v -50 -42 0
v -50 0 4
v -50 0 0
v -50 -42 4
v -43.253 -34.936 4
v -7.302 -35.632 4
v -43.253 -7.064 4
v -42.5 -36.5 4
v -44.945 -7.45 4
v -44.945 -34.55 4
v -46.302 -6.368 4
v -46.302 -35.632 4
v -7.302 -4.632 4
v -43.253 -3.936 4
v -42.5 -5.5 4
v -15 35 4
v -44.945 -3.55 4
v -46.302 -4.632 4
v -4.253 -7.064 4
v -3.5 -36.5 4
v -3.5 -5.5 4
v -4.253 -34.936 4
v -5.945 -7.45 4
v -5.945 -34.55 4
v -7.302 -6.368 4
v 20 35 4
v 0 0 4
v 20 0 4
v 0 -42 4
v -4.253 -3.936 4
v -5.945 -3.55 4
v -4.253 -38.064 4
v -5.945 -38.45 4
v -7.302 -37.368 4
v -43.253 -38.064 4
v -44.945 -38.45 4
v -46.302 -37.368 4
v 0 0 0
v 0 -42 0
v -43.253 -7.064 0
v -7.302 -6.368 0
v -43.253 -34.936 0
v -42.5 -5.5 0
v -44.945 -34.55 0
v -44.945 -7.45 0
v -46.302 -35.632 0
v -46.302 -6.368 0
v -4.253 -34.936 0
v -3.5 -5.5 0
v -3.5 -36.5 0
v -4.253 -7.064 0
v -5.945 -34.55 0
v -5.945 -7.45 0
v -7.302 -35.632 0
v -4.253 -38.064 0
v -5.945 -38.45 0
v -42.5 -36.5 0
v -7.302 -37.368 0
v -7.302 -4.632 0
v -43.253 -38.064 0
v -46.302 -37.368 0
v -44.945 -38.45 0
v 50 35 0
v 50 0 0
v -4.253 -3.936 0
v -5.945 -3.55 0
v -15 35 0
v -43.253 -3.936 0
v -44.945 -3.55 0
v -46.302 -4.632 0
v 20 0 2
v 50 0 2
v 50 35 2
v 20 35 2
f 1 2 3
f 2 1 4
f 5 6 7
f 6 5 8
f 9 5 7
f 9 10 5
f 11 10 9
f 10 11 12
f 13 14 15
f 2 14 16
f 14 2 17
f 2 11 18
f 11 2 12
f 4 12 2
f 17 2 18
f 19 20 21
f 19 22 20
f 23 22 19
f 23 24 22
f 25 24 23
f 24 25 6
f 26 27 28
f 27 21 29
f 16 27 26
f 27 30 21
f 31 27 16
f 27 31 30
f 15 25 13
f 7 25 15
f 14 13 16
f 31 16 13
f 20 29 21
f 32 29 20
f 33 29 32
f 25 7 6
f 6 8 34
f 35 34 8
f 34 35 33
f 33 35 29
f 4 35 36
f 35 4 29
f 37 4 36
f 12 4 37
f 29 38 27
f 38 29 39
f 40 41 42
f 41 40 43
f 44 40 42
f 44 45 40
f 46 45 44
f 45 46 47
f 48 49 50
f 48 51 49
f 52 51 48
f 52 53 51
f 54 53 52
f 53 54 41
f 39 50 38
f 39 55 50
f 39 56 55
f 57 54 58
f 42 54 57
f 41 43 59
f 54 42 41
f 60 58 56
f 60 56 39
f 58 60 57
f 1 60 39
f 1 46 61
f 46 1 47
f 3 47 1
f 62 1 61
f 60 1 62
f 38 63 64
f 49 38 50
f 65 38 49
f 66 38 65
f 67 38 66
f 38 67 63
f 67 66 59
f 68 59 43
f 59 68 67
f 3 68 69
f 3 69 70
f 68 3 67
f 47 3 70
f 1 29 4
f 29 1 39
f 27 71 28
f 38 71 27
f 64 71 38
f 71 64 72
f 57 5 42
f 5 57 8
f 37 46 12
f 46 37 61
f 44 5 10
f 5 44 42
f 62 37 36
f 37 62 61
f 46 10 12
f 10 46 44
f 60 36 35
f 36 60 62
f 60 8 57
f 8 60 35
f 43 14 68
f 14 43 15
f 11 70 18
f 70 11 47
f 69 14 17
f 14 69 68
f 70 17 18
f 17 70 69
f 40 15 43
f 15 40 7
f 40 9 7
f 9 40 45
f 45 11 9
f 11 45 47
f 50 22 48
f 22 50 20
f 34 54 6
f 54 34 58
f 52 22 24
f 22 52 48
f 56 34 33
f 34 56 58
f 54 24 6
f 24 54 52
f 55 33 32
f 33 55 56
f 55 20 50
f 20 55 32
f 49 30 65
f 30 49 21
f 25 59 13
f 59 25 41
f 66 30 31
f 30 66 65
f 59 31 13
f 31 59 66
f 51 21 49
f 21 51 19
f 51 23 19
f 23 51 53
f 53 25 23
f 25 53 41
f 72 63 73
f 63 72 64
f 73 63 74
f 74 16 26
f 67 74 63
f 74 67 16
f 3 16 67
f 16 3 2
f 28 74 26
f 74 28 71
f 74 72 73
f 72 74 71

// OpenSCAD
thick = 4;
brodit_foot_width = 50;
brodit_foot_height = 42;
corner = 5.5;
hole_diam = 4;
bar_height = 35;
bar_width = 100;
overlap = 30;

translate(
        [-brodit_foot_width,-brodit_foot_height,0])
difference()
{
        cube(
            size=[brodit_foot_width, 
                brodit_foot_height, 
                thick]);
            
        translate([corner, corner, 0])
            cylinder(h = thick, 
                    r1 = hole_diam /2, 
                    r2 = hole_diam /2);
    
        translate([corner, brodit_foot_height -                 corner, 0])
            cylinder(h = thick, 
                    r1 = hole_diam /2, 
                    r2 = hole_diam /2);
    
        translate([brodit_foot_width - corner,              corner, 0])
            cylinder(h = thick, 
                    r1 = hole_diam /2, 
                    r2 = hole_diam /2);
        
        translate([brodit_foot_width - corner,              brodit_foot_height- corner, 0])
            cylinder(h = thick, 
                    r1 = hole_diam /2, 
                    r2 = hole_diam /2);
}

translate([-brodit_foot_width,0,0])
difference()
{
    cube(size=[bar_width,bar_height,thick]);
    
    rotate(a=45)
        cube(size=[60,60,thick]);
    
    translate([bar_width - overlap,0,thick/2])
            cube(size=[overlap,bar_height,thick/2]);
}
